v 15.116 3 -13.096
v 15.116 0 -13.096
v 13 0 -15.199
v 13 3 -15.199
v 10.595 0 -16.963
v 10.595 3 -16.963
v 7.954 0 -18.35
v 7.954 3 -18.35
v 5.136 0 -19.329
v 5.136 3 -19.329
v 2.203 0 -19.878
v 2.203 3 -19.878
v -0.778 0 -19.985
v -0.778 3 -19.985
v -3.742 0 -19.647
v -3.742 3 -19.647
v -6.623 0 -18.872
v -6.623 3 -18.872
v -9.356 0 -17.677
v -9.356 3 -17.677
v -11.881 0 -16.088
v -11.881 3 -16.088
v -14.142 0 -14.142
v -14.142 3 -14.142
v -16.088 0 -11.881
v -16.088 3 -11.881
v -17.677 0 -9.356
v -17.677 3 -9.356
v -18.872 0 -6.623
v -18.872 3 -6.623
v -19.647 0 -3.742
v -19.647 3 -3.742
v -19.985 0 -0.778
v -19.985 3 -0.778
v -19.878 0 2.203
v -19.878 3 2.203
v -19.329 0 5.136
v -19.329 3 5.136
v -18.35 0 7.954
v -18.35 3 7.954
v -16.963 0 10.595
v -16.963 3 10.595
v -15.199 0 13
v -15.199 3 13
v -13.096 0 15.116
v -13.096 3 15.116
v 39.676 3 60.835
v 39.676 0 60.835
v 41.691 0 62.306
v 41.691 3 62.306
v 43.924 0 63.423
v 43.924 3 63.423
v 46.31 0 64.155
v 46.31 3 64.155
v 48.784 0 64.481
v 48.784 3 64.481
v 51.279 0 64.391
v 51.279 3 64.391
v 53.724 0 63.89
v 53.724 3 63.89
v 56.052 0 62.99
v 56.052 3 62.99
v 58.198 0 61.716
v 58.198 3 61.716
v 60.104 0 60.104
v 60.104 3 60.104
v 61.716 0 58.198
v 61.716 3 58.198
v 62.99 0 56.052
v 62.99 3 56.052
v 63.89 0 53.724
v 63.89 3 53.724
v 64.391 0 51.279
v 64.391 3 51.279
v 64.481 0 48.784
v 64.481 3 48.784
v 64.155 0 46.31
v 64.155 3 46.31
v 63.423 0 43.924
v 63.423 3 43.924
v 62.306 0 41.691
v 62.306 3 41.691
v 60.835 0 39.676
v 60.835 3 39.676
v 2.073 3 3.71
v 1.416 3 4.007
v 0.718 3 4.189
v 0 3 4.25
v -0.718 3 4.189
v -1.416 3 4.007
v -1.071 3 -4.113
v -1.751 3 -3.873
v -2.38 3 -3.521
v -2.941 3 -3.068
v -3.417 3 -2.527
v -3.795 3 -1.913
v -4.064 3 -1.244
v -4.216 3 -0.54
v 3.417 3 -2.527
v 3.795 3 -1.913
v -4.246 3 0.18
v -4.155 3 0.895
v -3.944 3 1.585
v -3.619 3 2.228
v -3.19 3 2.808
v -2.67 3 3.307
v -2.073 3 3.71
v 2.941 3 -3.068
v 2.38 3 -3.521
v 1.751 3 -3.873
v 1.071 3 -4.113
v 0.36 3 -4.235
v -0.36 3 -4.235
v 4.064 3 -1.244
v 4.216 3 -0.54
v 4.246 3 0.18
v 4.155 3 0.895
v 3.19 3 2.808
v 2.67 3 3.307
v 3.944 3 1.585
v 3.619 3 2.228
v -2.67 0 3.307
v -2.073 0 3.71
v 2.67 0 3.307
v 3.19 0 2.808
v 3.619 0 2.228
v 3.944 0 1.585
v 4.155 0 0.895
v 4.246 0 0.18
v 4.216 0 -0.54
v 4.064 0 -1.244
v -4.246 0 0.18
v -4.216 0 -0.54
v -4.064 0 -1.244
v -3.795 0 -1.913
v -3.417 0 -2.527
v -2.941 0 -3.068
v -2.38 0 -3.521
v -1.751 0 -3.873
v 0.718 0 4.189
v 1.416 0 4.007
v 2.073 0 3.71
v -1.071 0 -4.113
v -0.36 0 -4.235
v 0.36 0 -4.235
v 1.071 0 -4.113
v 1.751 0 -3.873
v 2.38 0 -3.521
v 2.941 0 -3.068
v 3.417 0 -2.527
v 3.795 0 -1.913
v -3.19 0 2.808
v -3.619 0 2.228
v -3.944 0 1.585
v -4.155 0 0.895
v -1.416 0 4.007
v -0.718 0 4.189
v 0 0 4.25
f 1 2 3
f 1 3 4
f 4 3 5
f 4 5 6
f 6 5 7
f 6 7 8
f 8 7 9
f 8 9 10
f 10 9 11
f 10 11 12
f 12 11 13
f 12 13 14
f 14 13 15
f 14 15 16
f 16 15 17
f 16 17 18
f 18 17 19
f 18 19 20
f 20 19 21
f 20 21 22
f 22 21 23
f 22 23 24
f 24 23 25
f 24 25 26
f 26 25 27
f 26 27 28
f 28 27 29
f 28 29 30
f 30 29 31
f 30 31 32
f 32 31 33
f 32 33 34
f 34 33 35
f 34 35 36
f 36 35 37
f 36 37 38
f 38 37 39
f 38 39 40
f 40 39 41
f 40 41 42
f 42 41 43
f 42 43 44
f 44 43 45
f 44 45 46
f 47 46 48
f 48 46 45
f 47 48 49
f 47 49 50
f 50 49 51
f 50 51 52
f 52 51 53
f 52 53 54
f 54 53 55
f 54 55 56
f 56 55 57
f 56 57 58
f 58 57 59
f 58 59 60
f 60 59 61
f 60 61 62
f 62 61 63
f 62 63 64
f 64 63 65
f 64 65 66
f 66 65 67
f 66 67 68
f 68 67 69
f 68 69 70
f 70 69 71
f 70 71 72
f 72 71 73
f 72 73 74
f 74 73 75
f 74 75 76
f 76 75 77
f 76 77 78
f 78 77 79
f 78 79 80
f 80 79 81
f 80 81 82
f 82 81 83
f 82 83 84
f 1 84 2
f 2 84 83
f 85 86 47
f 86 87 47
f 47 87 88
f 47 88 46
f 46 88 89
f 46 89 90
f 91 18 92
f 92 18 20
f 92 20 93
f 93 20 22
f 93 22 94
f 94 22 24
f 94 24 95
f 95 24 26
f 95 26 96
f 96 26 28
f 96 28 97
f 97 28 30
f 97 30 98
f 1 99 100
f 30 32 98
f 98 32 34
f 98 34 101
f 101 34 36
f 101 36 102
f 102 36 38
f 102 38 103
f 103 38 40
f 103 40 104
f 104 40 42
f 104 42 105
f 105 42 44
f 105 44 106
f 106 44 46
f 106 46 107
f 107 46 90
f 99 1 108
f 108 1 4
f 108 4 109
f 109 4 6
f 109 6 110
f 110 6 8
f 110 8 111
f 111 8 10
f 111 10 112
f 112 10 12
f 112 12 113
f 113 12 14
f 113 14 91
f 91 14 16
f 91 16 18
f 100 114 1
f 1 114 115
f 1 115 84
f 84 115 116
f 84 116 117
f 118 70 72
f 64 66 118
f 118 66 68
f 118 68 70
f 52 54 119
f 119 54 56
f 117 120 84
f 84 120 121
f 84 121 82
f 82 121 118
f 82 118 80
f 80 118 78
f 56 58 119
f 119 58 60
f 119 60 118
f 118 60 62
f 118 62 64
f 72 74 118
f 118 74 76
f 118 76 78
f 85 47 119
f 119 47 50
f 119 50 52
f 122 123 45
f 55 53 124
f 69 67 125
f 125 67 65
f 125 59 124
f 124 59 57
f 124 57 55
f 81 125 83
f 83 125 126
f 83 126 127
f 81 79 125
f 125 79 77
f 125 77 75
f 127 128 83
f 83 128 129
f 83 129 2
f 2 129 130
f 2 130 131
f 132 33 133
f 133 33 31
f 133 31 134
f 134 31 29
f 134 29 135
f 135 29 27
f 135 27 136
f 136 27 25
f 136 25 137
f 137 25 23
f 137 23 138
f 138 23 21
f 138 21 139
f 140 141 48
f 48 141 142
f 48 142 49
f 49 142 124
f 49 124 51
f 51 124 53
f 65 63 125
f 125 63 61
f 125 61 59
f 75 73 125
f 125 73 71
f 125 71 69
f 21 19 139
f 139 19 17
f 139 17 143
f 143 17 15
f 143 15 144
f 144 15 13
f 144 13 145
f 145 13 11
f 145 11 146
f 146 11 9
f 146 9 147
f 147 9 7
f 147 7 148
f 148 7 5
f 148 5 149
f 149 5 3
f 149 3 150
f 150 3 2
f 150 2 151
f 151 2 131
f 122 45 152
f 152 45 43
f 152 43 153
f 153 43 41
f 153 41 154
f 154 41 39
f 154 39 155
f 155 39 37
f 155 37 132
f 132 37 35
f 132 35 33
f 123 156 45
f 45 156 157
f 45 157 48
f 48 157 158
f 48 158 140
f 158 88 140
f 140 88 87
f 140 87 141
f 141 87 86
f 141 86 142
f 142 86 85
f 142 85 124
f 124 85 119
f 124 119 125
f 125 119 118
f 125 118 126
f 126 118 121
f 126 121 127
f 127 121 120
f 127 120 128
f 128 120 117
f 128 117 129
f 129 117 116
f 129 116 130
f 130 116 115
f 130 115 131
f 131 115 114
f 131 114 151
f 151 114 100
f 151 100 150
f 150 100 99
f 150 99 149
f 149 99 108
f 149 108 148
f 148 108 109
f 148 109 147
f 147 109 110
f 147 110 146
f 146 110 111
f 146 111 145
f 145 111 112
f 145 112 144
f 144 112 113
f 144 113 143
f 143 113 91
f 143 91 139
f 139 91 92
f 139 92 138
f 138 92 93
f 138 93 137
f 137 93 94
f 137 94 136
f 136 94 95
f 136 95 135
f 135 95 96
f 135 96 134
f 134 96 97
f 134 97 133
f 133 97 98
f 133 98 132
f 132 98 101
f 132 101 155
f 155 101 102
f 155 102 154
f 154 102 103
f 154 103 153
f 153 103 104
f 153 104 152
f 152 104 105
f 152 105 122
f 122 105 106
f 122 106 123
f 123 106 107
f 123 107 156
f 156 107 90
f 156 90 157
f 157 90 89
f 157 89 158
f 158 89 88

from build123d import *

# Parameters (mm, degrees)
SKETCH_1_R          = 20
SKETCH_1_R_2        = 15
EXTRUDE_1_DEPTH     = 3
SKETCH_2_R          = 2.5
CUT_EXTRUDE_1_DEPTH = 92.262525064
SKETCH_3_R          = 5
CUT_EXTRUDE_2_DEPTH = 10
SKETCH_4_R          = 5
SKETCH_4_R_2        = 4.25
EXTRUDE_2_DEPTH     = 3


with BuildPart() as part:
    # 草图1 → 凸台-拉伸1 (new body)
    with BuildSketch(Plane(origin=(0, 0, 0), x_dir=(1, 0, 0), z_dir=(0, 1, 0))):
        Circle(SKETCH_1_R)
        with BuildLine():
            ThreePointArc((20, 0), (8.309115435, -18.192267607), (-13.095860068, -15.116165158))
            Line((-13.095860068, -15.116165158), (39.675579632, -60.834598551))
            ThreePointArc((39.675579632, -60.834598551), (38.890872965, -38.890872965), (60.834598551, -39.675579632))
            Line((60.834598551, -39.675579632), (15.116165158, 13.095860068))
            ThreePointArc((15.116165158, 13.095860068), (18.73930766, 6.98844392), (20, 0))
        make_face()
        with Locations((49.497474683, -49.497474683)):
            Circle(SKETCH_1_R_2)
    extrude(amount=EXTRUDE_1_DEPTH)

    # 草图2 → 切除-拉伸1 (cut, through all)
    with BuildSketch(Plane(origin=(0, 3, 0), x_dir=(1, 0, 0), z_dir=(0, 1, 0))):
        with Locations(Location((0, 0, 0), (0, 0, 270))):
            Circle(SKETCH_2_R)
    extrude(amount=-CUT_EXTRUDE_1_DEPTH, mode=Mode.SUBTRACT)

    # 草图3 → 切除-拉伸2 (cut)
    with BuildSketch(Plane(origin=(0, 3, 0), x_dir=(1, 0, 0), z_dir=(0, 1, 0))):
        with Locations(Location((0, 0, 0), (0, 0, 270))):
            Circle(SKETCH_3_R)
    extrude(amount=-CUT_EXTRUDE_2_DEPTH, mode=Mode.SUBTRACT)

    # 草图4 → 凸台-拉伸2 (add)
    with BuildSketch(Plane(origin=(0, 3, 0), x_dir=(1, 0, 0), z_dir=(0, 1, 0))):
        Circle(SKETCH_4_R)
        with Locations(Location((0, 0, 0), (0, 0, 270))):
            Circle(SKETCH_4_R_2, mode=Mode.SUBTRACT)
    extrude(amount=-EXTRUDE_2_DEPTH)


solid = part.part
